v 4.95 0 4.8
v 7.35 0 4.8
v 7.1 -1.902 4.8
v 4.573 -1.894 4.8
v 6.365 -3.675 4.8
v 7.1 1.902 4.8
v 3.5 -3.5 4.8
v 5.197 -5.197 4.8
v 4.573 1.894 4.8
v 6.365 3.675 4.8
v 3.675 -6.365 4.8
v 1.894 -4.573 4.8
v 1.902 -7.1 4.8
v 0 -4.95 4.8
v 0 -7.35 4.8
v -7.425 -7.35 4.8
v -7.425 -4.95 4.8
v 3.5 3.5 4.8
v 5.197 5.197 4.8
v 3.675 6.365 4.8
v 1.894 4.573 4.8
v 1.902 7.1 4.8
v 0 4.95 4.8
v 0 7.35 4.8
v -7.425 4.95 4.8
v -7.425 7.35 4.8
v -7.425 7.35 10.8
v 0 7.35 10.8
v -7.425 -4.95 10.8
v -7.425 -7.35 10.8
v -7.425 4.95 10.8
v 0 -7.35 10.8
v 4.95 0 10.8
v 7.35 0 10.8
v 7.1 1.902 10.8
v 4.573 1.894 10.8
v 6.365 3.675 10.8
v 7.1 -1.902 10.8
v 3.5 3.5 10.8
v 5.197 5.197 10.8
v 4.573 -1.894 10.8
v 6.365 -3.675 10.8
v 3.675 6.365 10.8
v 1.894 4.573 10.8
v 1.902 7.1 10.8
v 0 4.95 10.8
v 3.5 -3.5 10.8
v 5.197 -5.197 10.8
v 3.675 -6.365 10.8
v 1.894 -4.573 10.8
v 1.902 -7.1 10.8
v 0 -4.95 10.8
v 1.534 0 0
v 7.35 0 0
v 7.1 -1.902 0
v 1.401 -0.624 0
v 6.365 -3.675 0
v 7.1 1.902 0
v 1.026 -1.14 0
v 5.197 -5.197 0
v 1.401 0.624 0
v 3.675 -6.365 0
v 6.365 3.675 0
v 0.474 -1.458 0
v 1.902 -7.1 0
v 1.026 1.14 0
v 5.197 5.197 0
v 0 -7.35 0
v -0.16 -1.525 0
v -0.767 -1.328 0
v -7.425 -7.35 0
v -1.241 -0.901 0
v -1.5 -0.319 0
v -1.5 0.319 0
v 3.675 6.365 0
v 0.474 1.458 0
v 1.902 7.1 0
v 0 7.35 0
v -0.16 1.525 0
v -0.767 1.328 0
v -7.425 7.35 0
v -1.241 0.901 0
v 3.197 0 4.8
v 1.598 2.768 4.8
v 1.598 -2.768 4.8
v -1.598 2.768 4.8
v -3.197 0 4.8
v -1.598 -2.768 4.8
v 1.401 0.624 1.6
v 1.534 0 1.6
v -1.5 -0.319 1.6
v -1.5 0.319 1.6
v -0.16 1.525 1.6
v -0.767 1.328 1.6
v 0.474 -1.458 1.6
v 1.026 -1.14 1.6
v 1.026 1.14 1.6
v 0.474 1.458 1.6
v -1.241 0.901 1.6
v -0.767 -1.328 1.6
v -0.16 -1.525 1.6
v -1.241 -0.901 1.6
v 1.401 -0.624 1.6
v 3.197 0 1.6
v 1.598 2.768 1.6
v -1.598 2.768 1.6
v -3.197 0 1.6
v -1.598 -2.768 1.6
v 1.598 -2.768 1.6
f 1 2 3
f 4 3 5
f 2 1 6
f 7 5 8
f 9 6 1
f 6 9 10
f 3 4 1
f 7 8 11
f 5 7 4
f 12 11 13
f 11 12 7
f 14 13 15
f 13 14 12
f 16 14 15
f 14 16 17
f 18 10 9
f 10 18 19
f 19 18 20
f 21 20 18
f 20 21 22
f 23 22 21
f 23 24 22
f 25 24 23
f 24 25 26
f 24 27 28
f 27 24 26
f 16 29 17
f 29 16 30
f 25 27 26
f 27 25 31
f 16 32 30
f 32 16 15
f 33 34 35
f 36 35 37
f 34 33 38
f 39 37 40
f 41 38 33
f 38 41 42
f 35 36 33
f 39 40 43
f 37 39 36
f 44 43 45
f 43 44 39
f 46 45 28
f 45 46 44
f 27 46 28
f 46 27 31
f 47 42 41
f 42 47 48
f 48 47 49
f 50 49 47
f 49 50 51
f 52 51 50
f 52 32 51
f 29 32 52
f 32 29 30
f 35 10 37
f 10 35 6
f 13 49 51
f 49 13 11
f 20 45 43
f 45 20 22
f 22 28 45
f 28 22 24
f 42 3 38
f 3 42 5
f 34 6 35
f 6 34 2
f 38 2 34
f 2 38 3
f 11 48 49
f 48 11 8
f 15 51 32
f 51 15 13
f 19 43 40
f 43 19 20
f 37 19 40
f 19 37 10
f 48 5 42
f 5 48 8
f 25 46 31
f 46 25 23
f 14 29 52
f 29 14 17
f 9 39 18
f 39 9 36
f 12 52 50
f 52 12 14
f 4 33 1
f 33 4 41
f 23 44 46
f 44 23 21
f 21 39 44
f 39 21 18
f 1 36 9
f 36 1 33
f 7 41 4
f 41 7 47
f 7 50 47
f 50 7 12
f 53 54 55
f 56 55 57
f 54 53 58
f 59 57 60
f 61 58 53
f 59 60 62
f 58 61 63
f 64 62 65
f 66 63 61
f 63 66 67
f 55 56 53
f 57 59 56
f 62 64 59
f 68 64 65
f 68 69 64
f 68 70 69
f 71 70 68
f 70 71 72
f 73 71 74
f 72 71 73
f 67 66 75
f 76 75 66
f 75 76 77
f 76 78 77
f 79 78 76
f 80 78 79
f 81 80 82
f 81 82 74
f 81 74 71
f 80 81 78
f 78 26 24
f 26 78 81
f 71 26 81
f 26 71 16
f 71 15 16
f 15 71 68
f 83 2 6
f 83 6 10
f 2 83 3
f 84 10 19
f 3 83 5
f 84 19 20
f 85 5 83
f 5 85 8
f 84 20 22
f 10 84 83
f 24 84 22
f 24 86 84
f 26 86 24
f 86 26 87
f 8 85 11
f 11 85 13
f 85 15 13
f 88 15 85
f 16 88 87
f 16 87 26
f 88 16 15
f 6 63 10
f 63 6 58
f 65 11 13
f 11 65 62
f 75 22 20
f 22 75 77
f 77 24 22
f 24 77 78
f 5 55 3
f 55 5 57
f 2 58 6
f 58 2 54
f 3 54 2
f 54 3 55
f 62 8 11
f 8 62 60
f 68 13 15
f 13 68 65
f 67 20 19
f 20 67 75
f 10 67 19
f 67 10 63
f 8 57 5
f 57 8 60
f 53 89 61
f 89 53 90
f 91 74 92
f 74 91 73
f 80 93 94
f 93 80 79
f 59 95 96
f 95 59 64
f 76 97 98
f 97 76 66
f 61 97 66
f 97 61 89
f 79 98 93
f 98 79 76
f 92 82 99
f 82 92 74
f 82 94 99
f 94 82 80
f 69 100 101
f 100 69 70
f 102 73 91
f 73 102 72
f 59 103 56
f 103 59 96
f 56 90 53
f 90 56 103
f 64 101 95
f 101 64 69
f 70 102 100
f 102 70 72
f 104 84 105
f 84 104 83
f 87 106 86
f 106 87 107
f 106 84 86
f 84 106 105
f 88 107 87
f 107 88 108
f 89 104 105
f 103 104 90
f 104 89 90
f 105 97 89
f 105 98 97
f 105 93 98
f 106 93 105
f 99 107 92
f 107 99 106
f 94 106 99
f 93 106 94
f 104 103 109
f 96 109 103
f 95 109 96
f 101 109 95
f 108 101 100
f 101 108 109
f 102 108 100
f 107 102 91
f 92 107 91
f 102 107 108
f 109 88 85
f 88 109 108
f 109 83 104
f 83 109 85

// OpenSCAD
// file: lib/hole.scad
module cylinder_outer(h,d=undef,d1=undef,d2=undef,fn=15) {
	fudge = cos(180/fn);
	cylinder(h=h,d=d/fudge,d1=d1/fudge,d2=d2/fudge,$fn=fn);
}

module hole(d, height, countersink=0, extra_above=false) {
	height = height - countersink;
	translate([0, 0, -(height+countersink)]) {
		translate([0, 0, height+0.001]) cylinder_outer(d1=d, d2=d*1.5, h=countersink);
		if (extra_above) {
			translate([0, 0, height+0.001]) cylinder_outer(d1=d, d2=d*2, h=countersink*3/2);
		}
		if (height > 0)
			translate([0, 0, -2]) cylinder_outer(d=d, h=height+2.1);
	}
}
// main file
width = 9.9;
length = width * 1.25;
hole = 3;
thickness = 4.8;
height = thickness * 2.25;

use <lib/hole.scad>;

h = height - thickness;
l = length - width/2;

module retainer_inner(t, w, l) {
	linear_extrude(t) {
		circle(d=w);
		translate([-l/2, 0, 0]) square([l, w], center=true);
	}
}

module nut_trap(w, h, sides){
	cylinder(r = w / 2 / cos(180 / 6) + 0.05, h=h, $fn=6);
}

translate([0, 0, thickness]) difference() {
	retainer_inner(h, width+thickness, l);
	translate([0, 0, -0.001]) retainer_inner(h+0.002, width, l+0.002);
}

difference() {
	retainer_inner(thickness, width+thickness, l);
	translate([0, 0, -0.001]) cylinder_outer(thickness+0.002, hole);
	translate([0, 0, thickness/3]) nut_trap(5.45, thickness * 2/3 + 0.01, 6);
}
